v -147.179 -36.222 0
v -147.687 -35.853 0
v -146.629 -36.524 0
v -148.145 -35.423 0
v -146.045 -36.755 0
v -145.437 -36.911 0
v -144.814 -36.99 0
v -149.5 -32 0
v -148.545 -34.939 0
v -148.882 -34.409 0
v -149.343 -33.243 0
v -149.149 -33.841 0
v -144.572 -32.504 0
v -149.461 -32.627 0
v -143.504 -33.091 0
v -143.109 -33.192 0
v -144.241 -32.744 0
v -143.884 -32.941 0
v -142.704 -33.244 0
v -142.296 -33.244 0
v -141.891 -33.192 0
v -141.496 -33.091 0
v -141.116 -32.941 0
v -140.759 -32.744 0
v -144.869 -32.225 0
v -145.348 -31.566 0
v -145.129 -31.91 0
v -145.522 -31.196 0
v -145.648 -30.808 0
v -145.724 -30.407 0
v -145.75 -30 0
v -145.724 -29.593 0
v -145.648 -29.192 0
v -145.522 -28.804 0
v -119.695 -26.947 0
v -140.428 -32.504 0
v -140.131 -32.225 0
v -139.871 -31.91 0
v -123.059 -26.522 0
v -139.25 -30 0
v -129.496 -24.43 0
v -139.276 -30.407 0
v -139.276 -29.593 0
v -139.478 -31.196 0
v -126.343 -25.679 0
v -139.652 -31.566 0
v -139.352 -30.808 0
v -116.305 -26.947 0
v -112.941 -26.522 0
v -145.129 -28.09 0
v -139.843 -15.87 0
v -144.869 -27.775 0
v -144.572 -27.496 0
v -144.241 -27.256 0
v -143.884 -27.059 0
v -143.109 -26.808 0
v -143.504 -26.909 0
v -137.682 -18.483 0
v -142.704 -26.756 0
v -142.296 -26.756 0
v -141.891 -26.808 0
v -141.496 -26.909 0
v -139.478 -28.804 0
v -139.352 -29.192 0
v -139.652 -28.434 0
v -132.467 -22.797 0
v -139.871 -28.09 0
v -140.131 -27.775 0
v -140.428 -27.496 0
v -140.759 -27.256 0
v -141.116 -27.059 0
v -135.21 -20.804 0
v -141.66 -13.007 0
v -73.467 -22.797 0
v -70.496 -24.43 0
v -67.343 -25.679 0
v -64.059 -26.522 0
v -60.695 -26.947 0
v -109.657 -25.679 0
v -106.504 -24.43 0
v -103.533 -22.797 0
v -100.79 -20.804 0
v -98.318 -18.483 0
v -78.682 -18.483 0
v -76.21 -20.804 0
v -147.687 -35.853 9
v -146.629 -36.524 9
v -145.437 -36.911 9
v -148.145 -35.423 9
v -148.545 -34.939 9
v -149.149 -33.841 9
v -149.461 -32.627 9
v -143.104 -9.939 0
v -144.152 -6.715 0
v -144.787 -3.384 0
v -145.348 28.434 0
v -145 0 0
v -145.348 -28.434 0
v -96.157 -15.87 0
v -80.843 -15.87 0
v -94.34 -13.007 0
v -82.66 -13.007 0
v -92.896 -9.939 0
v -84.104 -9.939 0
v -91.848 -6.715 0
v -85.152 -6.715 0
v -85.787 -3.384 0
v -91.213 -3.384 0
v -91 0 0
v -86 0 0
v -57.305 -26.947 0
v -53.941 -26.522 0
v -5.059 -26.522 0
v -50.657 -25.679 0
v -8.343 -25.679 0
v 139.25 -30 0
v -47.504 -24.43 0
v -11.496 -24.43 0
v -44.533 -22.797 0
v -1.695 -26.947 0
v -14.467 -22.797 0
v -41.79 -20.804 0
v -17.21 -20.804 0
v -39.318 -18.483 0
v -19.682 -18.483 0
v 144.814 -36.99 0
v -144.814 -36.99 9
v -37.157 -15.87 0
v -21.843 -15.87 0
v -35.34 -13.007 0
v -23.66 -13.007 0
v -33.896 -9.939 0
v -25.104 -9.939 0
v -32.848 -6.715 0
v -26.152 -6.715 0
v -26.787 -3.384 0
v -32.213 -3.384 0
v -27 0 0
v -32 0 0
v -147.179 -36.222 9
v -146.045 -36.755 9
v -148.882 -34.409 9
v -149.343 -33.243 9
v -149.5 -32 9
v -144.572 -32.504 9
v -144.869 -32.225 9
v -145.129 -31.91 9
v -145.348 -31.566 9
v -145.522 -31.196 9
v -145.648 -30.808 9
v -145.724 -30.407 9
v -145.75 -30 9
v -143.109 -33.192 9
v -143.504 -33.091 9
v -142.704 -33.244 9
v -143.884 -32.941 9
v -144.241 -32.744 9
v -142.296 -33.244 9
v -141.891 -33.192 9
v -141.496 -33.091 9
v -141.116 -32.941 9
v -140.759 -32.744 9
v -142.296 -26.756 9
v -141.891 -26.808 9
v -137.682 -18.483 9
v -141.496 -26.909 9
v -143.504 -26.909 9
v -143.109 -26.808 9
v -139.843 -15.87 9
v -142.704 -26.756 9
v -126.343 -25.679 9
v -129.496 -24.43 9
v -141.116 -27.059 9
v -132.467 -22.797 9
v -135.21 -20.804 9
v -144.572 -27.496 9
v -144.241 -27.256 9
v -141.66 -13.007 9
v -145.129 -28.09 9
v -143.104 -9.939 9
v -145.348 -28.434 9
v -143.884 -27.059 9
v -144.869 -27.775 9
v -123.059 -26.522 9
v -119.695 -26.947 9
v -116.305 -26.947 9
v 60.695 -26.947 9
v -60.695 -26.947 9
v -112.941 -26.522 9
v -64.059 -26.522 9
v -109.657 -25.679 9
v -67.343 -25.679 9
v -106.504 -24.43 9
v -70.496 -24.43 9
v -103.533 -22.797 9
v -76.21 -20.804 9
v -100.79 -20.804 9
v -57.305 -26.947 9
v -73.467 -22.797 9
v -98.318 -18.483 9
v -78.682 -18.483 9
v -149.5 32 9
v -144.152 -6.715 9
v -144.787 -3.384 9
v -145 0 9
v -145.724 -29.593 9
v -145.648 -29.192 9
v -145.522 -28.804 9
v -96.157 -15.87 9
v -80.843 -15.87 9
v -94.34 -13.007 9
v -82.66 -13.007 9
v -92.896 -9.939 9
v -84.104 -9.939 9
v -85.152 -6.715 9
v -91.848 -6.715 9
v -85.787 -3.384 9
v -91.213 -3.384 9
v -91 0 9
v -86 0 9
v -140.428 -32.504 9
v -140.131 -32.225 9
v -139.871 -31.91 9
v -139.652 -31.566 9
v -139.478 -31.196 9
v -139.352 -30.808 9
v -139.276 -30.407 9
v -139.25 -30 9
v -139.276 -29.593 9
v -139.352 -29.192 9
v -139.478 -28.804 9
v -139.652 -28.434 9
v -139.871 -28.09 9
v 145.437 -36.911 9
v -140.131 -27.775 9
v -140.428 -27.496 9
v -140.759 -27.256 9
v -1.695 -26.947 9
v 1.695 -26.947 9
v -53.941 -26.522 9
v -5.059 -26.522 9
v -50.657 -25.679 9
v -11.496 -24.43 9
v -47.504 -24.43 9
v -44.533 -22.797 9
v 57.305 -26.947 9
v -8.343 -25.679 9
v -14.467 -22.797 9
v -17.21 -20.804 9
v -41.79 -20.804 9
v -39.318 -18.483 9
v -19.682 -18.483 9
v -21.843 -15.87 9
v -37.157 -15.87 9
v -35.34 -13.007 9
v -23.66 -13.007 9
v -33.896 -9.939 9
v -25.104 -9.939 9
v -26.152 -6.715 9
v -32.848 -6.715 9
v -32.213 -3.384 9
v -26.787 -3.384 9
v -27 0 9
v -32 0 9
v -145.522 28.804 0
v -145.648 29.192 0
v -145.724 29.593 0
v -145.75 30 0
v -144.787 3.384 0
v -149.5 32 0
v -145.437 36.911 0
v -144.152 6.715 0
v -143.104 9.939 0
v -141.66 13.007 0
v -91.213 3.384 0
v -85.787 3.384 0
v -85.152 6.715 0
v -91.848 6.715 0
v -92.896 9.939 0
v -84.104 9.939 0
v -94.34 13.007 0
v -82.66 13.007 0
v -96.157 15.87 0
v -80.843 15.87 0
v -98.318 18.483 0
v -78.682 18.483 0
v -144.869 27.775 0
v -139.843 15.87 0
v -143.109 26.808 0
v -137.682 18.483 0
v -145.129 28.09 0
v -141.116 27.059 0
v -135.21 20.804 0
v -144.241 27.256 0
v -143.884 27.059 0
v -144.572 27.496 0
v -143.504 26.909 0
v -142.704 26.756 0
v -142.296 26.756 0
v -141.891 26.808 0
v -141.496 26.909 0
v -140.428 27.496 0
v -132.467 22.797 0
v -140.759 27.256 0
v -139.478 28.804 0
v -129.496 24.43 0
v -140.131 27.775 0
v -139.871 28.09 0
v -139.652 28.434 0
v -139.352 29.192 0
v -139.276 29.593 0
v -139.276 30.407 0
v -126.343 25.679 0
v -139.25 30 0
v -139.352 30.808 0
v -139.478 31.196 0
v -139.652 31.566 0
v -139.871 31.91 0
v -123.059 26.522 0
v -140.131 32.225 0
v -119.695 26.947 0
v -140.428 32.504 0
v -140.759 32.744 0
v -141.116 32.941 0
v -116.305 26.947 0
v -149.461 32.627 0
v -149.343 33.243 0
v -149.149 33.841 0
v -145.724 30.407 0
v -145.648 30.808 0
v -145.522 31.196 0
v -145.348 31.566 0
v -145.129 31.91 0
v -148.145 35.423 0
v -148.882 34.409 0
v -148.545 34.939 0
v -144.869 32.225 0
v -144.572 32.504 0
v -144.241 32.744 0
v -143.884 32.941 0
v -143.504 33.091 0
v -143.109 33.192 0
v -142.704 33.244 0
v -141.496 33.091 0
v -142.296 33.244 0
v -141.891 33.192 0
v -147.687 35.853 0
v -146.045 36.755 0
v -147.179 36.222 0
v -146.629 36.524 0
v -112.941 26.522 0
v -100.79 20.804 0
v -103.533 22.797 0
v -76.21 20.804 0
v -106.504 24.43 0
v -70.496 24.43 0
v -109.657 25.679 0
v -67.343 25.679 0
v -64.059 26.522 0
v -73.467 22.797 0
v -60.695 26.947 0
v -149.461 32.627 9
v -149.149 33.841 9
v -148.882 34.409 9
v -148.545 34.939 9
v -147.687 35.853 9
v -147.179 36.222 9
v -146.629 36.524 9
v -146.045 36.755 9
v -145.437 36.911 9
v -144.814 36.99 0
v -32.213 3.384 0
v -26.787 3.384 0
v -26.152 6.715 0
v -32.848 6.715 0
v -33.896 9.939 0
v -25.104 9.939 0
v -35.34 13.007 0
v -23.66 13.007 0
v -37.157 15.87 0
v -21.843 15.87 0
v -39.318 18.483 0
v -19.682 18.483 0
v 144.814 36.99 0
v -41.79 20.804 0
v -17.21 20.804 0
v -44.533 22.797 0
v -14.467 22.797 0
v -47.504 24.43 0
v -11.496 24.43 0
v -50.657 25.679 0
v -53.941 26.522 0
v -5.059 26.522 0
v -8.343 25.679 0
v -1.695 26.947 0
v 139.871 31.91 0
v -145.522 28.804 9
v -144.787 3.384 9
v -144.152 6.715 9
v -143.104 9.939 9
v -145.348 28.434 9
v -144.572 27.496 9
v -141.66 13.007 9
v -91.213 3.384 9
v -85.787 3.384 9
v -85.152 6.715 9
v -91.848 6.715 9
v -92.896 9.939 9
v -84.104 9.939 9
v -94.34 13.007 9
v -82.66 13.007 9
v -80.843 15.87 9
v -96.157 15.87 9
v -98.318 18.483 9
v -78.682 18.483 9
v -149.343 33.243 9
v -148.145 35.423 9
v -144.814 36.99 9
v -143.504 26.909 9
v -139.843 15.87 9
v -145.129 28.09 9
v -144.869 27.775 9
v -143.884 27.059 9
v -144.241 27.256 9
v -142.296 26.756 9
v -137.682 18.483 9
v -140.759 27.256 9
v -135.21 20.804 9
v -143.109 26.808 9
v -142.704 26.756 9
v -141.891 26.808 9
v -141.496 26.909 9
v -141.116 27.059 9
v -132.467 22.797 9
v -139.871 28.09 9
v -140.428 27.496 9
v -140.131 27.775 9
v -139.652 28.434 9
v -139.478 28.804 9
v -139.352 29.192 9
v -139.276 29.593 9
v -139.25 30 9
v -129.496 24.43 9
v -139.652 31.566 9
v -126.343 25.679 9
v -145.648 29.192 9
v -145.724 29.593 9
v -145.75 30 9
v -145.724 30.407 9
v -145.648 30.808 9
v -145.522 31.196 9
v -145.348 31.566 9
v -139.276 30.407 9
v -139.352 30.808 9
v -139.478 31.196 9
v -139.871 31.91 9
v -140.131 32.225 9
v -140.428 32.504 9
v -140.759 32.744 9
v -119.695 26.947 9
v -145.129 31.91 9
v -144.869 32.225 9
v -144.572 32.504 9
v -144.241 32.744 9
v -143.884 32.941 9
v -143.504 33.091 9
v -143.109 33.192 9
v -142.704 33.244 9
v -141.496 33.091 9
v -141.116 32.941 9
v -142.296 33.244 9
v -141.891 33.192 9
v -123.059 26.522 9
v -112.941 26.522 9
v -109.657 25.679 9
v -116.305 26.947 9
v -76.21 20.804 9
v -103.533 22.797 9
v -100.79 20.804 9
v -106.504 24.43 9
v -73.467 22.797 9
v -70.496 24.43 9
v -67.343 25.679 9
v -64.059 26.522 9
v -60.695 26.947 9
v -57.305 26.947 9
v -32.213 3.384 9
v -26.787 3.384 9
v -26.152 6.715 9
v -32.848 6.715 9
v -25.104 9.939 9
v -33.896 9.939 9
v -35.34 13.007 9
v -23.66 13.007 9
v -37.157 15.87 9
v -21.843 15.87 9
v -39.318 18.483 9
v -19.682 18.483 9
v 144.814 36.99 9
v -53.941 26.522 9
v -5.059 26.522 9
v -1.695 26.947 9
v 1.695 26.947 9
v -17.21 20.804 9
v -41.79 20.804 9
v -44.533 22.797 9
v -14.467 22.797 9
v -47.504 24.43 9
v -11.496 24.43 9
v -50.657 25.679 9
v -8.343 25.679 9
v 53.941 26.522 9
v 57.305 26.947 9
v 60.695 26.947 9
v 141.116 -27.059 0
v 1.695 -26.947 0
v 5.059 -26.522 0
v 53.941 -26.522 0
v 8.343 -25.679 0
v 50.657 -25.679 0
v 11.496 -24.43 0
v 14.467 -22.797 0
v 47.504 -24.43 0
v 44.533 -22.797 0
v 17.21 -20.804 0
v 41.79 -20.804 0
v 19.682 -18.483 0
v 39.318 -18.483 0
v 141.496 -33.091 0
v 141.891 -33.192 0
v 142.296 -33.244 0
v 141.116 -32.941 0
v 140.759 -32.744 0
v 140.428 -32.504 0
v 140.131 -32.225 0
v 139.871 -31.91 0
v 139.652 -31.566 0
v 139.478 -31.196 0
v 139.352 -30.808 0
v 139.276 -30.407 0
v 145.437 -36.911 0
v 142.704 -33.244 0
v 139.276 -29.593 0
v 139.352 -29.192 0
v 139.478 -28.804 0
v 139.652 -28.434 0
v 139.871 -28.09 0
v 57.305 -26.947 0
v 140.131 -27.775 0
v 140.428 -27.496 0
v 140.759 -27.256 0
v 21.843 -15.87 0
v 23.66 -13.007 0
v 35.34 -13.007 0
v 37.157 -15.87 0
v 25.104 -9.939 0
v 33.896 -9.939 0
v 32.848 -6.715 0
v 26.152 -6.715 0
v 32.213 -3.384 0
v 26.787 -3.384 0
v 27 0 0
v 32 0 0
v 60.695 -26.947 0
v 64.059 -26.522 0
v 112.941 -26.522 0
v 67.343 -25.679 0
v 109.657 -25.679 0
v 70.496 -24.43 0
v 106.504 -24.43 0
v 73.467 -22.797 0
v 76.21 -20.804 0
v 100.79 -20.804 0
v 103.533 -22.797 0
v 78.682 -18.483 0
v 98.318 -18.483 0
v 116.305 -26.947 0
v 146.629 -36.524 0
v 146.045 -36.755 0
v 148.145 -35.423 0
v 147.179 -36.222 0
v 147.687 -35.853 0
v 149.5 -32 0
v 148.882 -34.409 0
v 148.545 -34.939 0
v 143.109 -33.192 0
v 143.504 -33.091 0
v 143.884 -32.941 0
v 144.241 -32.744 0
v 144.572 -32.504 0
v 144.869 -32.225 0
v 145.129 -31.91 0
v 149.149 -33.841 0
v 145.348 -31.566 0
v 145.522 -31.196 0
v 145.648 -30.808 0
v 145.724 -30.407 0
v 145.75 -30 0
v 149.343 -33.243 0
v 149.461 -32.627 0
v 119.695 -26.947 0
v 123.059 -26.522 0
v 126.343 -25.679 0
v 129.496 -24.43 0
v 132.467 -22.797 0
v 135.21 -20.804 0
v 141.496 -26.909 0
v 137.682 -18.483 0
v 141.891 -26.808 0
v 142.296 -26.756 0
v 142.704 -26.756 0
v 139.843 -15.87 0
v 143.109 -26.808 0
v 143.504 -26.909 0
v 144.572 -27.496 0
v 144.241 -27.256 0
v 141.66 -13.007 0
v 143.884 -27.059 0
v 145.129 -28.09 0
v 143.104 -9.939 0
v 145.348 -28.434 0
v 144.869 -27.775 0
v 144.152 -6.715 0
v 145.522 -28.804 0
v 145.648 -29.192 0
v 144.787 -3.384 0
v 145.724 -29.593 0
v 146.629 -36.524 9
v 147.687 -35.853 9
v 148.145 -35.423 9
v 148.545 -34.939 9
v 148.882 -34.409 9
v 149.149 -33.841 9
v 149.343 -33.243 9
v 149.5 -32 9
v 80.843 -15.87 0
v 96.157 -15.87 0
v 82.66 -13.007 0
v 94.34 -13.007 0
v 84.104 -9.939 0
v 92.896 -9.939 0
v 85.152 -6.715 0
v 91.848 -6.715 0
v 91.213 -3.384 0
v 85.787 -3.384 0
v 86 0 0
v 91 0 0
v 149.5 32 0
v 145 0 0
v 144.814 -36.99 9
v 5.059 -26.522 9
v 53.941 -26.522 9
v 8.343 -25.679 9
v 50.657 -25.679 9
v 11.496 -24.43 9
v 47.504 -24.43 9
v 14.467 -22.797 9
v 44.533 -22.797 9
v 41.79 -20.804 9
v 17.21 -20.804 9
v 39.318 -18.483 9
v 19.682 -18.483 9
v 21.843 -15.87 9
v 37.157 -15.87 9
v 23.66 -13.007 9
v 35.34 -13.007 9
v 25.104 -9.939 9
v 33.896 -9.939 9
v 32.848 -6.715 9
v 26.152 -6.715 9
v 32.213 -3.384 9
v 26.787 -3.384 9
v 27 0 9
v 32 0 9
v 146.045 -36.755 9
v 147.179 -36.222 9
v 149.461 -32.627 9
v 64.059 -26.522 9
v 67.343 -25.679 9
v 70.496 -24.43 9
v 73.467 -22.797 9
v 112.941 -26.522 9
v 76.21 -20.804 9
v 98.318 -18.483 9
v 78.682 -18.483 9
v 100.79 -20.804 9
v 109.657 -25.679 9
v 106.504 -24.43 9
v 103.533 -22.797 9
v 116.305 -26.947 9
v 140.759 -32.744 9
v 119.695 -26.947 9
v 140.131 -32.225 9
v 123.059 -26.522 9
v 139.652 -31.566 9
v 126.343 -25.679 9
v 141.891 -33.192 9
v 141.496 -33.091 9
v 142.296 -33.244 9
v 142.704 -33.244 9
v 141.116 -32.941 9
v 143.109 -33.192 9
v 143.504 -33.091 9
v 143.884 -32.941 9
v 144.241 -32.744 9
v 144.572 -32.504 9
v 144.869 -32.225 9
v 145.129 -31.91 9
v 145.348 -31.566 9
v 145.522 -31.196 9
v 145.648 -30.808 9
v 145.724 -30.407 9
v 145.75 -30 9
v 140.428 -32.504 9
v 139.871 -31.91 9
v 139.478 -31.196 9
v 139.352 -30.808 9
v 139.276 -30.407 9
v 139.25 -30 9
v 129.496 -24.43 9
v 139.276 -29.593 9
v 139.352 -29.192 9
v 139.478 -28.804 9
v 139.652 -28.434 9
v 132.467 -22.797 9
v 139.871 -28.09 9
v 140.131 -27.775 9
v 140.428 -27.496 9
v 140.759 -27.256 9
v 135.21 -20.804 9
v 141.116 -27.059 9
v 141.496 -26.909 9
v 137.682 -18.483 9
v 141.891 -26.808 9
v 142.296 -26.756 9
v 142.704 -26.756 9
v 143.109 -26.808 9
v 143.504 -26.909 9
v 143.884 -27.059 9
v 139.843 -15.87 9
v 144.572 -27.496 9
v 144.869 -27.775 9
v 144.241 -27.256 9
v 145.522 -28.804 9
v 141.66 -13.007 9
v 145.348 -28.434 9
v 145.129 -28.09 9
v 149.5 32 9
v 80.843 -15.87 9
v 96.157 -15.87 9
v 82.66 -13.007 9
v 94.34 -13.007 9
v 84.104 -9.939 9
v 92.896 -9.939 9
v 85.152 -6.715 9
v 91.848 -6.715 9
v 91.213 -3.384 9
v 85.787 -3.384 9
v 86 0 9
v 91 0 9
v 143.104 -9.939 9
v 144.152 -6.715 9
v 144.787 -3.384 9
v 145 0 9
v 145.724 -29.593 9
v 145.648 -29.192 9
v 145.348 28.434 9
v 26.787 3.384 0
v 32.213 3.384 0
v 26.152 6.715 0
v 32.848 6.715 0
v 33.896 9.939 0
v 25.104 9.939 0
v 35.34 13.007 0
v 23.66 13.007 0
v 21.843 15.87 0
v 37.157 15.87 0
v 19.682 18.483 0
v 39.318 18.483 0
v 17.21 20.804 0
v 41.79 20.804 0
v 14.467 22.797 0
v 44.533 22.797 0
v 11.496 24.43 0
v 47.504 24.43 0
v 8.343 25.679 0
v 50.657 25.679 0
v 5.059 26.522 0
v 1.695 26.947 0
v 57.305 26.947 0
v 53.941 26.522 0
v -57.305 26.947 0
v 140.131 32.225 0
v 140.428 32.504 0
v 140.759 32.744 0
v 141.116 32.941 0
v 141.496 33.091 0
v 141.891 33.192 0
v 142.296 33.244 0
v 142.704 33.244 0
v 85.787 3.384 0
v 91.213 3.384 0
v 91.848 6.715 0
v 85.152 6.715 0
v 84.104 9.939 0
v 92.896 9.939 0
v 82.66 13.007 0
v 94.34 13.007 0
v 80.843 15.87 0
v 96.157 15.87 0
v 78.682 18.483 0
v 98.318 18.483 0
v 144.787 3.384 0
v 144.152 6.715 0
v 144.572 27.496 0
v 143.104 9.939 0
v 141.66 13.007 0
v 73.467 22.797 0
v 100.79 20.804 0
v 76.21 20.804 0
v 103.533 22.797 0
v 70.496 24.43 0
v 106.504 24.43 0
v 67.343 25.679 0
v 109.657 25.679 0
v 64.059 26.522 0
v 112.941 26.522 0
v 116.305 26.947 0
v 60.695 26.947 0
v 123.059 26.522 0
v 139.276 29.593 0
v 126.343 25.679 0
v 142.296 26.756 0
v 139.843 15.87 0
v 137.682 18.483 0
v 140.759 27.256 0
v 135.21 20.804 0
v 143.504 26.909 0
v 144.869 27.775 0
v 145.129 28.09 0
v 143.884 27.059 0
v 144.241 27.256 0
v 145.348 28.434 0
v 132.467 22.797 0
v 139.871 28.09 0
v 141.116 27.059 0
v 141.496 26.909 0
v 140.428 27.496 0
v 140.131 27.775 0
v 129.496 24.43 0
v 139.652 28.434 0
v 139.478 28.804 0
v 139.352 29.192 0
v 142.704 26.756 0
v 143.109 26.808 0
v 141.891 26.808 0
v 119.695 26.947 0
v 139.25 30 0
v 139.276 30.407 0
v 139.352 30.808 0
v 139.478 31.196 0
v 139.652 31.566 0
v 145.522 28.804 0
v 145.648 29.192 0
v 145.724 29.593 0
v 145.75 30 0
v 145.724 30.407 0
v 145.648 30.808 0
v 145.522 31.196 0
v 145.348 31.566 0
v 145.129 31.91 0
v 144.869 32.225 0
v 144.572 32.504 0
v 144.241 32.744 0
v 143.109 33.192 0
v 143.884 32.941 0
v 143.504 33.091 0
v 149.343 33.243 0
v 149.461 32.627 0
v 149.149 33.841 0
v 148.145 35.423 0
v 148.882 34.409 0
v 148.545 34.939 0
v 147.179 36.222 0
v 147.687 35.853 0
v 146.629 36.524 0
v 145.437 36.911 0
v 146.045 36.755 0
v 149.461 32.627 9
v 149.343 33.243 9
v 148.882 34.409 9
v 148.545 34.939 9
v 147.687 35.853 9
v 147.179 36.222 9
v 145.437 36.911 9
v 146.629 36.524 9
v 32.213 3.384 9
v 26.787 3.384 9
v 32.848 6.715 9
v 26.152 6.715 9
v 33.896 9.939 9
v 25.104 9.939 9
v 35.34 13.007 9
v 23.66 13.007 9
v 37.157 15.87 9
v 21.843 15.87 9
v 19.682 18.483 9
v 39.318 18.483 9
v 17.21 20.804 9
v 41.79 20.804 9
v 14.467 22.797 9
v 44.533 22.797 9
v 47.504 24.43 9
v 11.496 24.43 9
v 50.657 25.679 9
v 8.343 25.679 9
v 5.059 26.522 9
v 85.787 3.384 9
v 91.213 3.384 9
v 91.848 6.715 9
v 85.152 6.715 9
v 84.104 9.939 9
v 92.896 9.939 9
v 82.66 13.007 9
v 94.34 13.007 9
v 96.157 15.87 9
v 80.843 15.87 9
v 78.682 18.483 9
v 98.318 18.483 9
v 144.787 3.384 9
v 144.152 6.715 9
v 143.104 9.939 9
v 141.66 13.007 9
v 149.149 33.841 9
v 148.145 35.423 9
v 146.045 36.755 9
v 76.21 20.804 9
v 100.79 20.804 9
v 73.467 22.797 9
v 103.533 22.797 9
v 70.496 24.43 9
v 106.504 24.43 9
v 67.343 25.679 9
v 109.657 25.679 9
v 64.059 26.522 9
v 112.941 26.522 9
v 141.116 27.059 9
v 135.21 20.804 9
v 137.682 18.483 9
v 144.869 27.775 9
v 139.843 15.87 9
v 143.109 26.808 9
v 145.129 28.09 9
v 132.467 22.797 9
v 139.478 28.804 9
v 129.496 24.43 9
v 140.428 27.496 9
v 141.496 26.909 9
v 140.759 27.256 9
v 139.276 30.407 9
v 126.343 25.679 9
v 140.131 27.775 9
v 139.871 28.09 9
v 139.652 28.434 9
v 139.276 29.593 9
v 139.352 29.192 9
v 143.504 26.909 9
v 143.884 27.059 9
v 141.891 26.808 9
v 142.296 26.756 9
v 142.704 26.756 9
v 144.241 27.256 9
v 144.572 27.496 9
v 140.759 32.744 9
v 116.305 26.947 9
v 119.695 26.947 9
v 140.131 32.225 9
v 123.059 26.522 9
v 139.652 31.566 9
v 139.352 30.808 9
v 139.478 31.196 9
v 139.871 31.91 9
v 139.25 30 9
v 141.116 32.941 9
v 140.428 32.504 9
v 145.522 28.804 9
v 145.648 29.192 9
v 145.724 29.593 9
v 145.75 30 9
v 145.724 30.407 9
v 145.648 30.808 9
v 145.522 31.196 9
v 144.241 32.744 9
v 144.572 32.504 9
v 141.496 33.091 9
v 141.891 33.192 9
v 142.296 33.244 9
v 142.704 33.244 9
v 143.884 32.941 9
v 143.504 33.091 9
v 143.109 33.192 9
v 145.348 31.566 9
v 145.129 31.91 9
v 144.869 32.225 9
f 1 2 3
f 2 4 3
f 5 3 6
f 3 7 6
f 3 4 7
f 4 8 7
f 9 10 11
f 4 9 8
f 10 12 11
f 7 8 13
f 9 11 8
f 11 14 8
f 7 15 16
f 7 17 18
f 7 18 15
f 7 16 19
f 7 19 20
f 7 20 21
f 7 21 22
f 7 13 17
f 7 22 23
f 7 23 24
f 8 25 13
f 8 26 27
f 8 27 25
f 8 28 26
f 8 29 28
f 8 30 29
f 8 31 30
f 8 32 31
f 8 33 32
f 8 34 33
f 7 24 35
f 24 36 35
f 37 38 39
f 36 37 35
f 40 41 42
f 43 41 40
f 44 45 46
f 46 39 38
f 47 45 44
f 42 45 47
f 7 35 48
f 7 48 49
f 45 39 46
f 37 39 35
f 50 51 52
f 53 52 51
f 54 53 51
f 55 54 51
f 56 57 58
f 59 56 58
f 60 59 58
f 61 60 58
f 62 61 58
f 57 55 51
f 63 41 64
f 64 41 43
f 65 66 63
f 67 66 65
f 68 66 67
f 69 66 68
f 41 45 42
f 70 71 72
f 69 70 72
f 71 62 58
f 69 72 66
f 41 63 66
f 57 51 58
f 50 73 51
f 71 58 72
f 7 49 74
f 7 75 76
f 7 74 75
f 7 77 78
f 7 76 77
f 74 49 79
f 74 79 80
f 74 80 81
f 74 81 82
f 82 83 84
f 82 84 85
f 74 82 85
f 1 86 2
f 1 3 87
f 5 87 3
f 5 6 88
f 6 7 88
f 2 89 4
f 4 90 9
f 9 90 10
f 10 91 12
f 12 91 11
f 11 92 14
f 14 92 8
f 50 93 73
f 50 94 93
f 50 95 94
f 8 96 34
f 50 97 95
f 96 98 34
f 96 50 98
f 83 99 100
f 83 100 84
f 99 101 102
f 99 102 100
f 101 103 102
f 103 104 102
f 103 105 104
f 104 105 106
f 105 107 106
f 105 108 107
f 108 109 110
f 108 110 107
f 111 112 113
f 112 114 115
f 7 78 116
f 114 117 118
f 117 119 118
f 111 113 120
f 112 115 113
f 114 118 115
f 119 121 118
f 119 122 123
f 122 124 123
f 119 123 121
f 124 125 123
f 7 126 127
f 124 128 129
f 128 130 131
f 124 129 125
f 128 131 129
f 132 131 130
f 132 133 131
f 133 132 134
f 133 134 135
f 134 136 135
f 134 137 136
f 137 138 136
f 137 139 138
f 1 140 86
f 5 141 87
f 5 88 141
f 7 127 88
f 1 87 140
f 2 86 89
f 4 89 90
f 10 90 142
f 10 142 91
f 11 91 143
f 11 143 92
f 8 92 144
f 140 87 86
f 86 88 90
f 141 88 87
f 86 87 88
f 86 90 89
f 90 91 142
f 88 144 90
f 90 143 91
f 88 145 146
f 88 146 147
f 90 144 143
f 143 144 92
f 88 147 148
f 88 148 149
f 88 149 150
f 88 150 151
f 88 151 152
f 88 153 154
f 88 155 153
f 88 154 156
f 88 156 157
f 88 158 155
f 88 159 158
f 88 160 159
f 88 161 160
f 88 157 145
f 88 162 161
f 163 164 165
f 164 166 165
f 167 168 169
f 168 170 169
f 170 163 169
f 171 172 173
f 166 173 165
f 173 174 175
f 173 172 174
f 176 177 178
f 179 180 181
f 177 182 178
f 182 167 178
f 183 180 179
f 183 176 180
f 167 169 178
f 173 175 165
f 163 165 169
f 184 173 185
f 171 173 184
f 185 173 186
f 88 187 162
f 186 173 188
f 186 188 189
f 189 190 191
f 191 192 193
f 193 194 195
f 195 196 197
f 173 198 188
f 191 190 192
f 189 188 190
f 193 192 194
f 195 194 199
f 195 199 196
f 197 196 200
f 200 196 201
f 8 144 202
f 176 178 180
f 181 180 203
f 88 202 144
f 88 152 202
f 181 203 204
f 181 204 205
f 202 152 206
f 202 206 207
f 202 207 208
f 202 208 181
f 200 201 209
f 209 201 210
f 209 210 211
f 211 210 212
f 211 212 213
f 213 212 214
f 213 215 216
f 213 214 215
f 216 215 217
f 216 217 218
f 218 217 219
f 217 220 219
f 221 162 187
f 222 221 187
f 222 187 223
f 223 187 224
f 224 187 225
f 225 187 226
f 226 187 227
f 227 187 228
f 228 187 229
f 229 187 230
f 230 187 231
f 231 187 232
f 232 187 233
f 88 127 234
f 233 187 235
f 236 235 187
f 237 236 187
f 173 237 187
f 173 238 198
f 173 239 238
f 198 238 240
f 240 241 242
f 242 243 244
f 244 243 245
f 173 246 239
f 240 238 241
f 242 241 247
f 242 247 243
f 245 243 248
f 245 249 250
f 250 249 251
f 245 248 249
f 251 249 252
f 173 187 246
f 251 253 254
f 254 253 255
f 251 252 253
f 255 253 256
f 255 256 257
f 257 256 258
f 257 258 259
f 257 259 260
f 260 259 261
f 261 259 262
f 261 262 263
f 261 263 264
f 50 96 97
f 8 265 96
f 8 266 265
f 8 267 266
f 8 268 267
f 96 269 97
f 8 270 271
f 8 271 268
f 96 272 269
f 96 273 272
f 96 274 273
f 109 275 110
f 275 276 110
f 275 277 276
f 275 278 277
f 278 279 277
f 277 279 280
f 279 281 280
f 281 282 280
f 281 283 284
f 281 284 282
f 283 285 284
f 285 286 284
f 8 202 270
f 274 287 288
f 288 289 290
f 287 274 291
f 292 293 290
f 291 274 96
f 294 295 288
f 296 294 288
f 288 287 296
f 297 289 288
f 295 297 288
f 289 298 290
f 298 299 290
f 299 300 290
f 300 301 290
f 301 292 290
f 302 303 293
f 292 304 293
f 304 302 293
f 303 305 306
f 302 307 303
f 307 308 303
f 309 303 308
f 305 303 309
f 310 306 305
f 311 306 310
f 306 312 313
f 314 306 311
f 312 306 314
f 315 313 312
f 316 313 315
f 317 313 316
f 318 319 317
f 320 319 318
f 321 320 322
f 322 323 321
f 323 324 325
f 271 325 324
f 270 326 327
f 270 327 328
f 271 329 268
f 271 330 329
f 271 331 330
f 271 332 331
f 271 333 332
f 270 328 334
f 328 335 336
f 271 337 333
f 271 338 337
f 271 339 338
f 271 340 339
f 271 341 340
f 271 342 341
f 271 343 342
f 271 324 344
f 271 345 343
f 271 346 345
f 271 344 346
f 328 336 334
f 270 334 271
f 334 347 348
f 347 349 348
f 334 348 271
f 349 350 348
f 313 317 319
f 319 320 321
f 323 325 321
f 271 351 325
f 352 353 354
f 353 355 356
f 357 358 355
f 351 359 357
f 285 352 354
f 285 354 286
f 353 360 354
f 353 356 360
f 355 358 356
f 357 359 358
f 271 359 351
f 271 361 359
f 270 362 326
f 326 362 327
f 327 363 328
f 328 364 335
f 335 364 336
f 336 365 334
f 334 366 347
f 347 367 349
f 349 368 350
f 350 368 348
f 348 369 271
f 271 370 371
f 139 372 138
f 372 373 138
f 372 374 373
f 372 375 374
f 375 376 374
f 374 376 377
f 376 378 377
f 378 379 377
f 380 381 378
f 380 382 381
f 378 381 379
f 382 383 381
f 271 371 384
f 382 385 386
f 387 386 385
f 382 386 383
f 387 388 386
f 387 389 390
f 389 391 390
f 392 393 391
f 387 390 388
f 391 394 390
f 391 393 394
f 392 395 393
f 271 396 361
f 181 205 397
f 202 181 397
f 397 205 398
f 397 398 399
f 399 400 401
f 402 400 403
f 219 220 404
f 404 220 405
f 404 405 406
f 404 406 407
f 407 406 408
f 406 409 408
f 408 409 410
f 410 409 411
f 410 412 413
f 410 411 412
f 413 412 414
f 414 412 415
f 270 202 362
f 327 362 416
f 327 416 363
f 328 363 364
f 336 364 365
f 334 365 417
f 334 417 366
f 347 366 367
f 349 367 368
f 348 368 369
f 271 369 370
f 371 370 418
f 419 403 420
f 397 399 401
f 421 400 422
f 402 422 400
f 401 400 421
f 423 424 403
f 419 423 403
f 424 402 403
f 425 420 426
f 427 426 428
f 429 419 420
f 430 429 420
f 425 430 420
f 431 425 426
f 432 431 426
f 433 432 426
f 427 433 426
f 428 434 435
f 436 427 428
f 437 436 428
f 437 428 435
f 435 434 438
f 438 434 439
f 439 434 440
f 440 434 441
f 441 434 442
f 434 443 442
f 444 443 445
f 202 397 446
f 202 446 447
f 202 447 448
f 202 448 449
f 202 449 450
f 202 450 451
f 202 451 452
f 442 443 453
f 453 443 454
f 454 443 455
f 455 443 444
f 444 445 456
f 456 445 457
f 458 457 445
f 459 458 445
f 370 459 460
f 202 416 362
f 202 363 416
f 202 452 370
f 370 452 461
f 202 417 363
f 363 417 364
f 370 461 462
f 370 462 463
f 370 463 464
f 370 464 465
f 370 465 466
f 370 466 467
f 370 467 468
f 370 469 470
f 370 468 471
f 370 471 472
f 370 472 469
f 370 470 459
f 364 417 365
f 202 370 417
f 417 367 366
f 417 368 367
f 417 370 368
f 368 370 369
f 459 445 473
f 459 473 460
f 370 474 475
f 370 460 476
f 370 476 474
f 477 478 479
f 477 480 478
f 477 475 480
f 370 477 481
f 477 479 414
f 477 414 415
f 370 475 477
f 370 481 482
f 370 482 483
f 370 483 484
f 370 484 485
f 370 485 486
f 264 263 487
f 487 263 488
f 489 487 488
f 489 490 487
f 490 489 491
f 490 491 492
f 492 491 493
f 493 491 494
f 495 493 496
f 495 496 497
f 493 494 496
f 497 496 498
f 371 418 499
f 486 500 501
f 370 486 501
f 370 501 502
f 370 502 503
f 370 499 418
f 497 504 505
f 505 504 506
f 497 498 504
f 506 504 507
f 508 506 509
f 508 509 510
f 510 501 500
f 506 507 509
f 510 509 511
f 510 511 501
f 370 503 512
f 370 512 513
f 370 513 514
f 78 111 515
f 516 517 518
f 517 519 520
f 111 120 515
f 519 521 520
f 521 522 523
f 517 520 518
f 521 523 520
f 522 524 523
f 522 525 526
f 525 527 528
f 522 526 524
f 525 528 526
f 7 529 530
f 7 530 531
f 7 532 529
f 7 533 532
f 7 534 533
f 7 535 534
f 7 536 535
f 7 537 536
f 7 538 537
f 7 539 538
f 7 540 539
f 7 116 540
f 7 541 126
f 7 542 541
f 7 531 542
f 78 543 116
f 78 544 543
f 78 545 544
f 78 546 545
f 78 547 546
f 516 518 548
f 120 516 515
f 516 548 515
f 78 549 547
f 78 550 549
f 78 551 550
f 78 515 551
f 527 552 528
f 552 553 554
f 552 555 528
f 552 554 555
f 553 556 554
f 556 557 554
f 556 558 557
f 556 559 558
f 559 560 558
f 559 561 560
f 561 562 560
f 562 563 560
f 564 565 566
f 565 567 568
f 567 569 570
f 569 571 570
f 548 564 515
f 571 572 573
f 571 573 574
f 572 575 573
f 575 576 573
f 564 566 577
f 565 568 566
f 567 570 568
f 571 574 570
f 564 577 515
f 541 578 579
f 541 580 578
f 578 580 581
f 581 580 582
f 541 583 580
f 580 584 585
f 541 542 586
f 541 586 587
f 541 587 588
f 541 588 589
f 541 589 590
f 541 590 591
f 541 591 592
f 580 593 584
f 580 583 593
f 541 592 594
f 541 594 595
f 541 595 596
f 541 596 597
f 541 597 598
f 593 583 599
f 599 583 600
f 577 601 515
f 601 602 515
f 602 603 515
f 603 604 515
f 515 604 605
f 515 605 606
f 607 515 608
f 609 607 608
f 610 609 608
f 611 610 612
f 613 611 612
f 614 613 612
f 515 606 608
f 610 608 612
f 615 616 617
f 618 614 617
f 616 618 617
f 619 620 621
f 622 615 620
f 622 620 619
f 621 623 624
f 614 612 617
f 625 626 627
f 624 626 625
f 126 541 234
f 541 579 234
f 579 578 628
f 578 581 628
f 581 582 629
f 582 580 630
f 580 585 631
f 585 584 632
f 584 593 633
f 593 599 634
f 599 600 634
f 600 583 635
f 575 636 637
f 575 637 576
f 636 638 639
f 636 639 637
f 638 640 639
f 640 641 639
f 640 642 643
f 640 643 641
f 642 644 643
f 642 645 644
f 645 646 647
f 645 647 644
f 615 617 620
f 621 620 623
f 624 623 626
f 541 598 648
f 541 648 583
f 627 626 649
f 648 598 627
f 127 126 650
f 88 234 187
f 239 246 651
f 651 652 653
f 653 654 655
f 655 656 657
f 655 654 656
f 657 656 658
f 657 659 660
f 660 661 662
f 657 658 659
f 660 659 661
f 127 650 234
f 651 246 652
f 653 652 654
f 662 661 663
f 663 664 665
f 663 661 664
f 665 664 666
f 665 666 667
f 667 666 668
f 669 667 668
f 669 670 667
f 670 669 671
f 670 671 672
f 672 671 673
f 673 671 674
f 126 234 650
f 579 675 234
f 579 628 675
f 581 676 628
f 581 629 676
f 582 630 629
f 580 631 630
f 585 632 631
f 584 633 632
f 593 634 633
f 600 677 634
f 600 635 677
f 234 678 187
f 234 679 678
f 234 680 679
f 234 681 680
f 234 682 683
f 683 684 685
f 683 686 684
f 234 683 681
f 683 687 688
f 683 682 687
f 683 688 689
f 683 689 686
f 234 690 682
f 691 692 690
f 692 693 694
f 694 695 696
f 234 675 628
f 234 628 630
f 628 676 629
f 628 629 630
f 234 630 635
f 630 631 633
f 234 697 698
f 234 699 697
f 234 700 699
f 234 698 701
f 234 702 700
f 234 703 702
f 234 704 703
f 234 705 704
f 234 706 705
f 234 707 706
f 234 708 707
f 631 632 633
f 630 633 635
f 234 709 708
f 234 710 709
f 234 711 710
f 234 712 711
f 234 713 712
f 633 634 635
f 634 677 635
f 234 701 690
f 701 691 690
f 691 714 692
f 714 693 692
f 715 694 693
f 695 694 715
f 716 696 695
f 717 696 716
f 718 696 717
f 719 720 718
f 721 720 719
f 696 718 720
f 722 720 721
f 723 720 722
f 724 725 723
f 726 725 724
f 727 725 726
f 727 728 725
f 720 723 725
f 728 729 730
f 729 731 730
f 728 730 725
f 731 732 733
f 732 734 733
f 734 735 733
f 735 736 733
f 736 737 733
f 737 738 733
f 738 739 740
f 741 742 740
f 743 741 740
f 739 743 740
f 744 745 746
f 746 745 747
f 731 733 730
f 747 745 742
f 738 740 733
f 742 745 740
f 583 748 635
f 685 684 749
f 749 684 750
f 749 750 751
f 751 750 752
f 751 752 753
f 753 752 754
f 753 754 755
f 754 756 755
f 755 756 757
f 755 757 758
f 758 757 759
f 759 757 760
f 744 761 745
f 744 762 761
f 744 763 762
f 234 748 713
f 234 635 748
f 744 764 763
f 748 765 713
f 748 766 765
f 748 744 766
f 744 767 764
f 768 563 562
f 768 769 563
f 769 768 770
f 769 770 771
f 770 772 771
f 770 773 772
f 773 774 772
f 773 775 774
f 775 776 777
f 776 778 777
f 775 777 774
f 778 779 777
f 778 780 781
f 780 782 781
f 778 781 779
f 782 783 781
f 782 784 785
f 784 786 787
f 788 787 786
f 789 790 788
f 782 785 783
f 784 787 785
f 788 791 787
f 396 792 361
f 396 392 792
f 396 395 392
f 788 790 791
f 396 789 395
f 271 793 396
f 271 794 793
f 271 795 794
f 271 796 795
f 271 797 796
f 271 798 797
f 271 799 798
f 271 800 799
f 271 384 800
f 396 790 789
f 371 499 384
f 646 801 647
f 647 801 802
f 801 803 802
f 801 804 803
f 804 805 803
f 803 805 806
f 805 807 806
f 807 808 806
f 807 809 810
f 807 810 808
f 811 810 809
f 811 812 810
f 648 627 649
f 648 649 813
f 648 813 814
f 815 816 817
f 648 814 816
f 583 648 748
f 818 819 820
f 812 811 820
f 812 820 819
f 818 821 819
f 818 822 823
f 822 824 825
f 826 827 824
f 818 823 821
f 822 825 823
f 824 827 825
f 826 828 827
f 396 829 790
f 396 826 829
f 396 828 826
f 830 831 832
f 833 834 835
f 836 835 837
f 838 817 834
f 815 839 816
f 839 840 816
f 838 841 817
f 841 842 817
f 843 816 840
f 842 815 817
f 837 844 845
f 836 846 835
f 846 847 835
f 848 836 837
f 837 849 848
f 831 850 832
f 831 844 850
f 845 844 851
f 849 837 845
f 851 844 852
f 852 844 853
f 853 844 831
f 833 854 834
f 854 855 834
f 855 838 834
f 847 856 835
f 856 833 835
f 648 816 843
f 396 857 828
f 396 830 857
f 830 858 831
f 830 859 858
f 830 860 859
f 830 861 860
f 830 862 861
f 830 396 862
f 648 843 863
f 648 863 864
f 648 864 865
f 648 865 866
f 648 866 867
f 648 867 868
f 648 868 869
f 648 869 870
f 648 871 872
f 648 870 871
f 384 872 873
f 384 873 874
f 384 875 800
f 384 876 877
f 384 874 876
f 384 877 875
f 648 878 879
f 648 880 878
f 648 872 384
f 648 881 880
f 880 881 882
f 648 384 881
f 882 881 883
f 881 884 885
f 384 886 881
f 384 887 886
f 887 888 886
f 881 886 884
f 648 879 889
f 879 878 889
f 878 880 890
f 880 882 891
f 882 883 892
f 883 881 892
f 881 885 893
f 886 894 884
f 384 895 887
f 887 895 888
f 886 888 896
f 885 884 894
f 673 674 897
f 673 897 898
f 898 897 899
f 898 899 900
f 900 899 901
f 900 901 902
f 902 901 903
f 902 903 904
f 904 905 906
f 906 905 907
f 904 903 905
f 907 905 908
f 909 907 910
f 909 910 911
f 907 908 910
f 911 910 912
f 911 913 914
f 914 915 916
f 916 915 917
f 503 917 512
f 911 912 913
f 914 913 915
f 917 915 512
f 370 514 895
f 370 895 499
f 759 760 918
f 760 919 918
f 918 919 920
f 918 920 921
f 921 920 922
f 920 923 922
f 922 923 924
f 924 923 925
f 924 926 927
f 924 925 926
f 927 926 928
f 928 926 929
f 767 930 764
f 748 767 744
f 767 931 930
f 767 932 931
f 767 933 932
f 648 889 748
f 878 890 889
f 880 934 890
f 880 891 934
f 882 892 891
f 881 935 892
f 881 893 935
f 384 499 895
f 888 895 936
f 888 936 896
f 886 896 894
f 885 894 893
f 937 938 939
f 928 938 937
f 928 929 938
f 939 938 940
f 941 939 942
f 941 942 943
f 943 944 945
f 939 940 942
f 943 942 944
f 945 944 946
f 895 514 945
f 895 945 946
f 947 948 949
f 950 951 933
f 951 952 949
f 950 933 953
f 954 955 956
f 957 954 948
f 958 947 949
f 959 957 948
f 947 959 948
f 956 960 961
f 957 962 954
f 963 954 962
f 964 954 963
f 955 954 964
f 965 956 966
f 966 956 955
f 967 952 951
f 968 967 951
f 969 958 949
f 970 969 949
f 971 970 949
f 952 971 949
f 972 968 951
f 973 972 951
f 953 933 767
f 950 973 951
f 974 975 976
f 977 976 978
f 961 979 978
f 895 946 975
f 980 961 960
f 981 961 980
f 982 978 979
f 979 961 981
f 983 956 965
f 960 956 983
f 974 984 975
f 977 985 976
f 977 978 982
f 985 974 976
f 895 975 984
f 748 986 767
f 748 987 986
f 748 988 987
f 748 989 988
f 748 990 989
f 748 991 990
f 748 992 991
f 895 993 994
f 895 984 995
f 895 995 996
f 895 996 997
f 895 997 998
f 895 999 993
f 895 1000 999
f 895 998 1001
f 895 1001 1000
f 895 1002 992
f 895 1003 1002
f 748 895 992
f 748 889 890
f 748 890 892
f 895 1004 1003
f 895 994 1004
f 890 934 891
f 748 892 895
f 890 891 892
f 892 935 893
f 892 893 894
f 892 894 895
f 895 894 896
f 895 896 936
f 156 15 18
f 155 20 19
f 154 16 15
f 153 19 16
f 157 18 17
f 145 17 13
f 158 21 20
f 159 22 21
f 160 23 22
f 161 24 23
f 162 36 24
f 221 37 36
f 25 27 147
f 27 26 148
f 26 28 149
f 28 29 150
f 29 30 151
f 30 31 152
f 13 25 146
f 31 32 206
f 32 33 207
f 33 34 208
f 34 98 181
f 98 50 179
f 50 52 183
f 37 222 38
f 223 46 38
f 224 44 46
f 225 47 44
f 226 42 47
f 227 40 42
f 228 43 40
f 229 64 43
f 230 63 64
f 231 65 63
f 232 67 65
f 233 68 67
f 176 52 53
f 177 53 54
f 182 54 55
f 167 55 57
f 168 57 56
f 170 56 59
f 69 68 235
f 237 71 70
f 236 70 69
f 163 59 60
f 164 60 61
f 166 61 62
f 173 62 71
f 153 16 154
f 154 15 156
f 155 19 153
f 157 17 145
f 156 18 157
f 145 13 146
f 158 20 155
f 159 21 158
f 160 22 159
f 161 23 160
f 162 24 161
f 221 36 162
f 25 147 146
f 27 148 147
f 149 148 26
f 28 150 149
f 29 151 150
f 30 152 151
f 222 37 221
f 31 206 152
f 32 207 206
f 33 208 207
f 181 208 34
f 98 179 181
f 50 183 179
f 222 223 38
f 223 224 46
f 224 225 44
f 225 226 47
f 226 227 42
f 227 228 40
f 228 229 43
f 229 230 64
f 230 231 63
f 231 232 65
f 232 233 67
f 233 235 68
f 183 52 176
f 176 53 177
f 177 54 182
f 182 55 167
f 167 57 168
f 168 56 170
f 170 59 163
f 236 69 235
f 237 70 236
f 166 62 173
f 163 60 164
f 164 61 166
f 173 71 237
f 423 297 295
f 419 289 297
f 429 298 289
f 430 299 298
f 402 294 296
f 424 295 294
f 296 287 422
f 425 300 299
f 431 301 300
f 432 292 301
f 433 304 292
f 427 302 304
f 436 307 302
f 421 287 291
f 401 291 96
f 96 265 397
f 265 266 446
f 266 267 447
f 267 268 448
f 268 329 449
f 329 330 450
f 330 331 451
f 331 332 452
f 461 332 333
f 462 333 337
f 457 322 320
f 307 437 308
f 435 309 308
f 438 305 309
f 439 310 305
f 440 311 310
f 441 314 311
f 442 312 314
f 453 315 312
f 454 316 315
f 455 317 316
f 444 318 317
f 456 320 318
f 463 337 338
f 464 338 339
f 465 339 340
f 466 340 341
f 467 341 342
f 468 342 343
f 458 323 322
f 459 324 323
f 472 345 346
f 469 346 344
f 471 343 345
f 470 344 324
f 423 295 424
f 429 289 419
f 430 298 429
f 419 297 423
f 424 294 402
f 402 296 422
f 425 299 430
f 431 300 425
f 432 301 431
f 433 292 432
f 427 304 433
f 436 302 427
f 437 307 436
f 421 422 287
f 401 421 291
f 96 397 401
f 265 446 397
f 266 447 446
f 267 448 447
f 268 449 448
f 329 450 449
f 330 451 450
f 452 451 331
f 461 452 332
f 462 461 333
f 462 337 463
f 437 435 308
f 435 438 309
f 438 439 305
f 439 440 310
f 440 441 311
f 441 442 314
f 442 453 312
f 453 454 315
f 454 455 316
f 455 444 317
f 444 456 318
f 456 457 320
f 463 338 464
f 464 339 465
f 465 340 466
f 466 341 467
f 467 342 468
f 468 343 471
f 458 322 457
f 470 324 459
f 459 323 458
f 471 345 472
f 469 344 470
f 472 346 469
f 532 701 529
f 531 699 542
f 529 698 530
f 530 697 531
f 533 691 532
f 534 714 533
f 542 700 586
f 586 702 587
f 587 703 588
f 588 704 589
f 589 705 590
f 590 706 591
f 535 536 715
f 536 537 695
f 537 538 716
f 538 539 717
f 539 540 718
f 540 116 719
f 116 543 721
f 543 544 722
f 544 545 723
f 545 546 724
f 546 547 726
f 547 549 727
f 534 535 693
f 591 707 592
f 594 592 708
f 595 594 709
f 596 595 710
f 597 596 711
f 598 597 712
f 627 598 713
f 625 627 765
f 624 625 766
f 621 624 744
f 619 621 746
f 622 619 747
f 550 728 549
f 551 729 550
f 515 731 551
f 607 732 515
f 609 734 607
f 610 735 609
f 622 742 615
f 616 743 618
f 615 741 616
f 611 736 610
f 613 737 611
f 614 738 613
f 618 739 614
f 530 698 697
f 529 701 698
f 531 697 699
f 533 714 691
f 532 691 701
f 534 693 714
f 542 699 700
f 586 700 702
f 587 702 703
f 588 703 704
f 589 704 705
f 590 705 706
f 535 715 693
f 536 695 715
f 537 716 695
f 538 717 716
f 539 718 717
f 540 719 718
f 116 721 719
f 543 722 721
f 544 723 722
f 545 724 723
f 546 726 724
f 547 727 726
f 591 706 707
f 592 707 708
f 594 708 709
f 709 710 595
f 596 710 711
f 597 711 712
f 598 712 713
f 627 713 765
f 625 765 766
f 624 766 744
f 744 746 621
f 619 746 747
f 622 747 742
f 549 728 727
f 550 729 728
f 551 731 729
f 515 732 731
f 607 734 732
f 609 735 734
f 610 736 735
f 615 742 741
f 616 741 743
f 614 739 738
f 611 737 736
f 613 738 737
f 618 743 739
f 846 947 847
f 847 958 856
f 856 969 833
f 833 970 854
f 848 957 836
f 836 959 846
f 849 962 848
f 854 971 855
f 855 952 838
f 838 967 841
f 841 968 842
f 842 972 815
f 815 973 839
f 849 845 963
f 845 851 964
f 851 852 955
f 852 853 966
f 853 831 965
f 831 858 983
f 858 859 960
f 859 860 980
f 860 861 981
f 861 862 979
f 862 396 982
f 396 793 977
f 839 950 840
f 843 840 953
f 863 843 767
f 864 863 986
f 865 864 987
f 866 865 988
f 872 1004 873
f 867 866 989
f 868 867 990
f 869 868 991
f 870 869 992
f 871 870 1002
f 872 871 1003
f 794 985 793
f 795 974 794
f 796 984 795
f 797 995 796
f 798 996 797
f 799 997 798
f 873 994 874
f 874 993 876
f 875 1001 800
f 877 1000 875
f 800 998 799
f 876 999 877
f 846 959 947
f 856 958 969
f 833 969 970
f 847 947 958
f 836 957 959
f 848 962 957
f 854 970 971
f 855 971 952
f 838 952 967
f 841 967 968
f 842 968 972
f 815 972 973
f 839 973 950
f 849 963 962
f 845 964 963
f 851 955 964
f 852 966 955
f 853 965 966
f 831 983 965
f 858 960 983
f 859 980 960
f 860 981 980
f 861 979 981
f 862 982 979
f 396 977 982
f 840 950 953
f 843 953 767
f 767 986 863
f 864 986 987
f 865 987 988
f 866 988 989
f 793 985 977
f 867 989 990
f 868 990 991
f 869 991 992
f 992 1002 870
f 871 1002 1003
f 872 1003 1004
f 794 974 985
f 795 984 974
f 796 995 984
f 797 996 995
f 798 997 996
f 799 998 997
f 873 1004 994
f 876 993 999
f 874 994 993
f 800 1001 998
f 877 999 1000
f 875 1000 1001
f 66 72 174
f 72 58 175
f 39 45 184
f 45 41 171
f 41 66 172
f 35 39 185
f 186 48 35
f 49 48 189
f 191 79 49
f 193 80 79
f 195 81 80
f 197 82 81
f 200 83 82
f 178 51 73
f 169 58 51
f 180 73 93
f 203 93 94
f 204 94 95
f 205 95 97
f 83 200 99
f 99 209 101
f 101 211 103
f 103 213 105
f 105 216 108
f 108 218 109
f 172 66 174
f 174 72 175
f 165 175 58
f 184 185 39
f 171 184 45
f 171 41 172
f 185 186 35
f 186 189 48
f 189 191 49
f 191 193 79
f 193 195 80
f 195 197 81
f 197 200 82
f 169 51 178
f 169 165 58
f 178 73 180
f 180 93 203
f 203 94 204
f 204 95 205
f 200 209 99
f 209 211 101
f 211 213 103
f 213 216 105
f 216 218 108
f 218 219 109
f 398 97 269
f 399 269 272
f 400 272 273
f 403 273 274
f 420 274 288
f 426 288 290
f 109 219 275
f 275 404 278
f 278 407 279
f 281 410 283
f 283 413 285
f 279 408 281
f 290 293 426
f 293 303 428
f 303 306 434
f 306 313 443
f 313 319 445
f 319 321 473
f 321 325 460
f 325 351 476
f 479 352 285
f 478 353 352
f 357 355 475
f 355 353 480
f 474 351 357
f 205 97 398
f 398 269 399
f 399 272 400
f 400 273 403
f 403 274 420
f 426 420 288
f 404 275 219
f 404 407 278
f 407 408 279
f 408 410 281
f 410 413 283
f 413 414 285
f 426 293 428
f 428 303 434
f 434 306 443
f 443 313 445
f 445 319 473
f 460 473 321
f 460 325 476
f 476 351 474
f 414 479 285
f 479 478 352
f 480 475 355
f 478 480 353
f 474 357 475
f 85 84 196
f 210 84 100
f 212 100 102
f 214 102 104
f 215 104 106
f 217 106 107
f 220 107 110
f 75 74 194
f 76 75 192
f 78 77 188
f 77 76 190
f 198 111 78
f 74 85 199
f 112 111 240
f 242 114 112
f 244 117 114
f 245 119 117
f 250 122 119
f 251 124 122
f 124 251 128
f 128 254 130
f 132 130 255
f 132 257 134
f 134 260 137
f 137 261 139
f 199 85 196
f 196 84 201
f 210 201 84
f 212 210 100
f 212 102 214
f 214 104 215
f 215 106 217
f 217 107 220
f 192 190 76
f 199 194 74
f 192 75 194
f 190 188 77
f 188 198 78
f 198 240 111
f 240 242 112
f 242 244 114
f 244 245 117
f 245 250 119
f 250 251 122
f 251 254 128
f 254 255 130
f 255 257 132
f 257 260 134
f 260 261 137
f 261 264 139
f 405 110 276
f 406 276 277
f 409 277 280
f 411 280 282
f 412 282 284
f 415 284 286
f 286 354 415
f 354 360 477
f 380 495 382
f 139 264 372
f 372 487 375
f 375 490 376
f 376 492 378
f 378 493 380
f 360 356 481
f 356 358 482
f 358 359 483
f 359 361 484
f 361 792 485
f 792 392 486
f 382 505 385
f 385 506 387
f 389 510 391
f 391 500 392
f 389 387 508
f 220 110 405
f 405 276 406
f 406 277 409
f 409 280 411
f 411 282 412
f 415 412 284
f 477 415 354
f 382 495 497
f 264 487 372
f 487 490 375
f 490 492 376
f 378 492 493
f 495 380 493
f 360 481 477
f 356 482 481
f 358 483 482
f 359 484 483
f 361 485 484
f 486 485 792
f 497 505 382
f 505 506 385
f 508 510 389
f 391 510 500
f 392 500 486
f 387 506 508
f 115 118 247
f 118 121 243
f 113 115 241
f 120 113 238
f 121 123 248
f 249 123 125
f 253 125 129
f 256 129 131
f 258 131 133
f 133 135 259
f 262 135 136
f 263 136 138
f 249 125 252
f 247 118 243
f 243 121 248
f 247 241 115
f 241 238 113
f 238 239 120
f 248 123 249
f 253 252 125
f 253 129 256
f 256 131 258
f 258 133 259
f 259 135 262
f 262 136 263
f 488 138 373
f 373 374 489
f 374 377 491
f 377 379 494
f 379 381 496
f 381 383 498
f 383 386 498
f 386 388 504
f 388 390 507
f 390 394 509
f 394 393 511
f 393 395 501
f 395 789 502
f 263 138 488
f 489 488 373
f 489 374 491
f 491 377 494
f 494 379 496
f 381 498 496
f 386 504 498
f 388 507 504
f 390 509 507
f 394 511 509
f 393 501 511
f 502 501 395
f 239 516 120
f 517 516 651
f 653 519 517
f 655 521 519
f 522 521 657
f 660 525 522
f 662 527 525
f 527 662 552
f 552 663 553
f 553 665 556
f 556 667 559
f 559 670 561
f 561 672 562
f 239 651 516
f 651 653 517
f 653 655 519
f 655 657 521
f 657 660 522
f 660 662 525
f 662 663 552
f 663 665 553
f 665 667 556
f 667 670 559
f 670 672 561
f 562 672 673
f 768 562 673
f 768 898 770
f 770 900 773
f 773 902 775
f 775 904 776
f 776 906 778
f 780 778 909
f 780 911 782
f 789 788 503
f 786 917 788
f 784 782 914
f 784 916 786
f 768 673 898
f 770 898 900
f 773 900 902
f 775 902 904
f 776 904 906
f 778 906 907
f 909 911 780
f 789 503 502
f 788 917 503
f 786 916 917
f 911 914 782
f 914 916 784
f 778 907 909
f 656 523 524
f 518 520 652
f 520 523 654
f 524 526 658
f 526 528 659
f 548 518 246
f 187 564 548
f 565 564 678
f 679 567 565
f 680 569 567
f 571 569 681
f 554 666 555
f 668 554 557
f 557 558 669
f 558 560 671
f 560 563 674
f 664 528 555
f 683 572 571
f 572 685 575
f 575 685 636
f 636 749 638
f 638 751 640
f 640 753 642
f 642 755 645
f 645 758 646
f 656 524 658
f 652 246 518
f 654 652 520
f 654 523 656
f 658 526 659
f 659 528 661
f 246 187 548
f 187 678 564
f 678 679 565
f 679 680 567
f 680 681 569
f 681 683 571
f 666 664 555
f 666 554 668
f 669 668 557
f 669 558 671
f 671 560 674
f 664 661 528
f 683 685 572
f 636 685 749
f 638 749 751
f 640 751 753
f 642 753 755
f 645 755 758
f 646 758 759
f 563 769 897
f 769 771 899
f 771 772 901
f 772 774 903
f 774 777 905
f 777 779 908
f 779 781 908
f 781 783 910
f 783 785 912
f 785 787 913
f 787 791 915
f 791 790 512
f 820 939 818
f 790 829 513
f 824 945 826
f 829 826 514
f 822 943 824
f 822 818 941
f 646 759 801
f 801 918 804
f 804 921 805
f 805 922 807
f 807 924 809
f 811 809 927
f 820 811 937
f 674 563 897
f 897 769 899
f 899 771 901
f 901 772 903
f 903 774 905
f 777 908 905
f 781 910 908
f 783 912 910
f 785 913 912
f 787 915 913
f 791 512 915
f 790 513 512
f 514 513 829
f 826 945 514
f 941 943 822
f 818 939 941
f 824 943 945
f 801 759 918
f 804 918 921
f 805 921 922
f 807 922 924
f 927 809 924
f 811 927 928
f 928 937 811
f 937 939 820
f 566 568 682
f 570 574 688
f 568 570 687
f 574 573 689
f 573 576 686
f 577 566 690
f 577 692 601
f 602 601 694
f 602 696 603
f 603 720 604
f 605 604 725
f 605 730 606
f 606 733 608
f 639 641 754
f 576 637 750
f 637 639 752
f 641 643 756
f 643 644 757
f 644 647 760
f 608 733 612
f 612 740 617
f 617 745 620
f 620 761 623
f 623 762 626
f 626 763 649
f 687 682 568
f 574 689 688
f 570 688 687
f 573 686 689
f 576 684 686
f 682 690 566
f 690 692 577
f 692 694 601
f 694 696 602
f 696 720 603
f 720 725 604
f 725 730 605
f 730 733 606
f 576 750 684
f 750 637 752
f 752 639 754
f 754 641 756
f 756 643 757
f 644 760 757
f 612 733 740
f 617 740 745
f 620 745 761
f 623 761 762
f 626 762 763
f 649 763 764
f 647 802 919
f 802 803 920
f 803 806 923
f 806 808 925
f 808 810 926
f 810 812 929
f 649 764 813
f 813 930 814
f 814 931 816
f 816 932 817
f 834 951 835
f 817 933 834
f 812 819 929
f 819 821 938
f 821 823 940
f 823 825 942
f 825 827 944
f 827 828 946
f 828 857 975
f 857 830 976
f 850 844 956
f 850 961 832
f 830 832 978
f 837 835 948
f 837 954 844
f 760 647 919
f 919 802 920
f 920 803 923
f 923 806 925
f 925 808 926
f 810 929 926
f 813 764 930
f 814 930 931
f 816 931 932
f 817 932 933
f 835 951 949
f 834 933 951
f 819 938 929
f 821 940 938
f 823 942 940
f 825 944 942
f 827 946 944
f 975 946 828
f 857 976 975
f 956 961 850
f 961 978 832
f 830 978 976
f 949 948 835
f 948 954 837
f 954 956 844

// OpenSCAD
$fn = 50;

difference() {
	union() {
		hull() {
			translate(v = [-144.5, 32.0, 0]) {
				cylinder(h = 9, r = 5);
			}
			translate(v = [144.5, 32.0, 0]) {
				cylinder(h = 9, r = 5);
			}
			translate(v = [-144.5, -32.0, 0]) {
				cylinder(h = 9, r = 5);
			}
			translate(v = [144.5, -32.0, 0]) {
				cylinder(h = 9, r = 5);
			}
		}
	}
	union() {
		translate(v = [-142.5, -30.0, -100.0]) {
			cylinder(h = 200, r = 3.25);
		}
		translate(v = [-142.5, 30.0, -100.0]) {
			cylinder(h = 200, r = 3.25);
		}
		translate(v = [142.5, -30.0, -100.0]) {
			cylinder(h = 200, r = 3.25);
		}
		translate(v = [142.5, 30.0, -100.0]) {
			cylinder(h = 200, r = 3.25);
		}
		translate(v = [-142.5, -30.0, -100.0]) {
			cylinder(h = 200, r = 1.8);
		}
		translate(v = [-142.5, 30.0, -100.0]) {
			cylinder(h = 200, r = 1.8);
		}
		translate(v = [142.5, -30.0, -100.0]) {
			cylinder(h = 200, r = 1.8);
		}
		translate(v = [142.5, 30.0, -100.0]) {
			cylinder(h = 200, r = 1.8);
		}
		translate(v = [-118.0, 0, 0.0]) {
			cylinder(h = 9, r = 27.0);
		}
		translate(v = [-59.0, 0, 0.0]) {
			cylinder(h = 9, r = 27.0);
		}
		cylinder(h = 9, r = 27.0);
		translate(v = [59.0, 0, 0.0]) {
			cylinder(h = 9, r = 27.0);
		}
		translate(v = [118.0, 0, 0.0]) {
			cylinder(h = 9, r = 27.0);
		}
	}
}
